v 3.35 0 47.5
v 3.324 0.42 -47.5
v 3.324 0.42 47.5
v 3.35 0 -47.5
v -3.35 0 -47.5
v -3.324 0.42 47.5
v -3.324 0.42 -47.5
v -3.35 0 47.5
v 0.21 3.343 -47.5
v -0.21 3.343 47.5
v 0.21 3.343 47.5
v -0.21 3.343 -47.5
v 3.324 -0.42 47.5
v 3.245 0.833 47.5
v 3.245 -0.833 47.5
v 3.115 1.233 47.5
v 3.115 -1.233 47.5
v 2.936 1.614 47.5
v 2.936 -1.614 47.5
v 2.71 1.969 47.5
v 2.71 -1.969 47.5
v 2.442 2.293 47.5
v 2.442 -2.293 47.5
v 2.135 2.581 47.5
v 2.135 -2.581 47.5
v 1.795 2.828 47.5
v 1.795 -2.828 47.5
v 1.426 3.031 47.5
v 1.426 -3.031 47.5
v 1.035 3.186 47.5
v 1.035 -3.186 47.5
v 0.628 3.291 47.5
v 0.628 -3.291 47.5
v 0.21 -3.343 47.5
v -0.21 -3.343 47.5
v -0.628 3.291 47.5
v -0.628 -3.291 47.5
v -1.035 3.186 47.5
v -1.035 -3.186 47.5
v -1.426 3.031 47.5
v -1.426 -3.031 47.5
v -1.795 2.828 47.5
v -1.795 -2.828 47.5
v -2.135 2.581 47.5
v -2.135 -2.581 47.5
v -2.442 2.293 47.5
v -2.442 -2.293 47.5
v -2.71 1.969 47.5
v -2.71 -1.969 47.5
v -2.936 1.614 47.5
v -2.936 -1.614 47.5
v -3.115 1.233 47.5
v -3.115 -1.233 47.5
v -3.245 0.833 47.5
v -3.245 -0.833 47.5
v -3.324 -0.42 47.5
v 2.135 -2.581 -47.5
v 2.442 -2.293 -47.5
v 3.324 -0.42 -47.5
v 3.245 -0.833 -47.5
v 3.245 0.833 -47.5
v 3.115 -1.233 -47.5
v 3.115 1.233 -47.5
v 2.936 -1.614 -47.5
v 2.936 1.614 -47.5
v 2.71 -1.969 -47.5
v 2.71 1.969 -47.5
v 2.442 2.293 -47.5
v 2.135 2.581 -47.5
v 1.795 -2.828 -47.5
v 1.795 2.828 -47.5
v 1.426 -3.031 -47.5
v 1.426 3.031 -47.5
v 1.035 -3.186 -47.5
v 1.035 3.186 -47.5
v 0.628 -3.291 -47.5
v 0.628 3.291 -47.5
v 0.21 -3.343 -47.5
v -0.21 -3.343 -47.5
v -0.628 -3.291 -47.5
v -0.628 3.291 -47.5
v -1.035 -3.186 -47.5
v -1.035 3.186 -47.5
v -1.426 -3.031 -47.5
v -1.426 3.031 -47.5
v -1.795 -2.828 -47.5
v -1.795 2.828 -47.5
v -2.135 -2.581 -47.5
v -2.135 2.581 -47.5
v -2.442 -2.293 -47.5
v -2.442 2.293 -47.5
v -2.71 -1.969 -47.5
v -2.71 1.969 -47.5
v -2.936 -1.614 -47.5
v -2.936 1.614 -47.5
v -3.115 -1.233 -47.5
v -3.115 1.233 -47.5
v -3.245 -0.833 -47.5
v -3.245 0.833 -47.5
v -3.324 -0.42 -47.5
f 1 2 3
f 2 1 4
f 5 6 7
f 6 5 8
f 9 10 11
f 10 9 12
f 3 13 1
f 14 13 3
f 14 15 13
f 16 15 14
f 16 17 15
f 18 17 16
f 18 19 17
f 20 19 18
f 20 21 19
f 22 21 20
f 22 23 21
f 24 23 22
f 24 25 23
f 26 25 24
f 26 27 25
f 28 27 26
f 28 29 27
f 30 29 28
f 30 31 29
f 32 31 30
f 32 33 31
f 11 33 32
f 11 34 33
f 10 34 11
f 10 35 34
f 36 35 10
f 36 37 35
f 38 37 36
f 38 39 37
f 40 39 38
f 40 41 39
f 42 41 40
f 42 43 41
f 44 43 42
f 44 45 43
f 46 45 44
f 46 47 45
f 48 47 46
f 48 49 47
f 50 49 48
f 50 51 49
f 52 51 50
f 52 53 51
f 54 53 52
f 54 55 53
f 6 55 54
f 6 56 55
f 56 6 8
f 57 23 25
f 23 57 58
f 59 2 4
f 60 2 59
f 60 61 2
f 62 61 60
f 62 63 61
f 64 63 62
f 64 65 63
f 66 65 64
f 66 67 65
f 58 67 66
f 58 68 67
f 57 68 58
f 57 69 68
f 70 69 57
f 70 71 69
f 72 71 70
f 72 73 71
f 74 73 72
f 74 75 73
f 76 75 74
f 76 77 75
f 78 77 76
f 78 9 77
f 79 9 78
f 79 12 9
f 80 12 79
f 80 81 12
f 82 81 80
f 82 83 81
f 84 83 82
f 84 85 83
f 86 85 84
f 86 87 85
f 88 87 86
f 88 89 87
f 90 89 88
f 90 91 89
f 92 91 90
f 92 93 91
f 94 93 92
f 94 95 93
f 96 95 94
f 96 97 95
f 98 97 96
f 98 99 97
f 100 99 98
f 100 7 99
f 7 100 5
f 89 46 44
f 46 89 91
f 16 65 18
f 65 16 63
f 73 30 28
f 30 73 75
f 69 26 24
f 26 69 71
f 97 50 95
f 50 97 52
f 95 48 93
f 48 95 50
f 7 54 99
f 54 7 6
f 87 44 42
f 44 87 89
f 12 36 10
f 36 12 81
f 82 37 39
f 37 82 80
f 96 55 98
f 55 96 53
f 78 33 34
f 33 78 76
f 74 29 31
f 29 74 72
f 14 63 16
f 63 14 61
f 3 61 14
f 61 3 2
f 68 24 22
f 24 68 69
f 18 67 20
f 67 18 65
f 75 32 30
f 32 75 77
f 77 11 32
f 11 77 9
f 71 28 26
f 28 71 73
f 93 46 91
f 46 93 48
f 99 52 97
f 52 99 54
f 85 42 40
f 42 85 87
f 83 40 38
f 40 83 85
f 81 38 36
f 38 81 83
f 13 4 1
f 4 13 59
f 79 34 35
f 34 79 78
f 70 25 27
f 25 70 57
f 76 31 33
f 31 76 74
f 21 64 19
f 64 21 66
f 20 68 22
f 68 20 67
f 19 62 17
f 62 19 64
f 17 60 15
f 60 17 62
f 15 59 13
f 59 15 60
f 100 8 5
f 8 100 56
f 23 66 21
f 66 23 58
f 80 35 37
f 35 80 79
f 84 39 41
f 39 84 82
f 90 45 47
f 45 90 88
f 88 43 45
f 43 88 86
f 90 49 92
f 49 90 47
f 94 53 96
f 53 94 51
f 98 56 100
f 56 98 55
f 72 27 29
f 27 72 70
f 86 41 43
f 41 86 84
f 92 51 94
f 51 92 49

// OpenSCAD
$fn = 50;


difference() {
	union() {
		translate(v = [0, 0, -47.5000000000]) {
			cylinder(h = 95, r = 3.3500000000);
		}
	}
	union() {
		translate(v = [0, 0, -100.0000000000]) {
			cylinder(h = 200, r = 0);
		}
	}
}
